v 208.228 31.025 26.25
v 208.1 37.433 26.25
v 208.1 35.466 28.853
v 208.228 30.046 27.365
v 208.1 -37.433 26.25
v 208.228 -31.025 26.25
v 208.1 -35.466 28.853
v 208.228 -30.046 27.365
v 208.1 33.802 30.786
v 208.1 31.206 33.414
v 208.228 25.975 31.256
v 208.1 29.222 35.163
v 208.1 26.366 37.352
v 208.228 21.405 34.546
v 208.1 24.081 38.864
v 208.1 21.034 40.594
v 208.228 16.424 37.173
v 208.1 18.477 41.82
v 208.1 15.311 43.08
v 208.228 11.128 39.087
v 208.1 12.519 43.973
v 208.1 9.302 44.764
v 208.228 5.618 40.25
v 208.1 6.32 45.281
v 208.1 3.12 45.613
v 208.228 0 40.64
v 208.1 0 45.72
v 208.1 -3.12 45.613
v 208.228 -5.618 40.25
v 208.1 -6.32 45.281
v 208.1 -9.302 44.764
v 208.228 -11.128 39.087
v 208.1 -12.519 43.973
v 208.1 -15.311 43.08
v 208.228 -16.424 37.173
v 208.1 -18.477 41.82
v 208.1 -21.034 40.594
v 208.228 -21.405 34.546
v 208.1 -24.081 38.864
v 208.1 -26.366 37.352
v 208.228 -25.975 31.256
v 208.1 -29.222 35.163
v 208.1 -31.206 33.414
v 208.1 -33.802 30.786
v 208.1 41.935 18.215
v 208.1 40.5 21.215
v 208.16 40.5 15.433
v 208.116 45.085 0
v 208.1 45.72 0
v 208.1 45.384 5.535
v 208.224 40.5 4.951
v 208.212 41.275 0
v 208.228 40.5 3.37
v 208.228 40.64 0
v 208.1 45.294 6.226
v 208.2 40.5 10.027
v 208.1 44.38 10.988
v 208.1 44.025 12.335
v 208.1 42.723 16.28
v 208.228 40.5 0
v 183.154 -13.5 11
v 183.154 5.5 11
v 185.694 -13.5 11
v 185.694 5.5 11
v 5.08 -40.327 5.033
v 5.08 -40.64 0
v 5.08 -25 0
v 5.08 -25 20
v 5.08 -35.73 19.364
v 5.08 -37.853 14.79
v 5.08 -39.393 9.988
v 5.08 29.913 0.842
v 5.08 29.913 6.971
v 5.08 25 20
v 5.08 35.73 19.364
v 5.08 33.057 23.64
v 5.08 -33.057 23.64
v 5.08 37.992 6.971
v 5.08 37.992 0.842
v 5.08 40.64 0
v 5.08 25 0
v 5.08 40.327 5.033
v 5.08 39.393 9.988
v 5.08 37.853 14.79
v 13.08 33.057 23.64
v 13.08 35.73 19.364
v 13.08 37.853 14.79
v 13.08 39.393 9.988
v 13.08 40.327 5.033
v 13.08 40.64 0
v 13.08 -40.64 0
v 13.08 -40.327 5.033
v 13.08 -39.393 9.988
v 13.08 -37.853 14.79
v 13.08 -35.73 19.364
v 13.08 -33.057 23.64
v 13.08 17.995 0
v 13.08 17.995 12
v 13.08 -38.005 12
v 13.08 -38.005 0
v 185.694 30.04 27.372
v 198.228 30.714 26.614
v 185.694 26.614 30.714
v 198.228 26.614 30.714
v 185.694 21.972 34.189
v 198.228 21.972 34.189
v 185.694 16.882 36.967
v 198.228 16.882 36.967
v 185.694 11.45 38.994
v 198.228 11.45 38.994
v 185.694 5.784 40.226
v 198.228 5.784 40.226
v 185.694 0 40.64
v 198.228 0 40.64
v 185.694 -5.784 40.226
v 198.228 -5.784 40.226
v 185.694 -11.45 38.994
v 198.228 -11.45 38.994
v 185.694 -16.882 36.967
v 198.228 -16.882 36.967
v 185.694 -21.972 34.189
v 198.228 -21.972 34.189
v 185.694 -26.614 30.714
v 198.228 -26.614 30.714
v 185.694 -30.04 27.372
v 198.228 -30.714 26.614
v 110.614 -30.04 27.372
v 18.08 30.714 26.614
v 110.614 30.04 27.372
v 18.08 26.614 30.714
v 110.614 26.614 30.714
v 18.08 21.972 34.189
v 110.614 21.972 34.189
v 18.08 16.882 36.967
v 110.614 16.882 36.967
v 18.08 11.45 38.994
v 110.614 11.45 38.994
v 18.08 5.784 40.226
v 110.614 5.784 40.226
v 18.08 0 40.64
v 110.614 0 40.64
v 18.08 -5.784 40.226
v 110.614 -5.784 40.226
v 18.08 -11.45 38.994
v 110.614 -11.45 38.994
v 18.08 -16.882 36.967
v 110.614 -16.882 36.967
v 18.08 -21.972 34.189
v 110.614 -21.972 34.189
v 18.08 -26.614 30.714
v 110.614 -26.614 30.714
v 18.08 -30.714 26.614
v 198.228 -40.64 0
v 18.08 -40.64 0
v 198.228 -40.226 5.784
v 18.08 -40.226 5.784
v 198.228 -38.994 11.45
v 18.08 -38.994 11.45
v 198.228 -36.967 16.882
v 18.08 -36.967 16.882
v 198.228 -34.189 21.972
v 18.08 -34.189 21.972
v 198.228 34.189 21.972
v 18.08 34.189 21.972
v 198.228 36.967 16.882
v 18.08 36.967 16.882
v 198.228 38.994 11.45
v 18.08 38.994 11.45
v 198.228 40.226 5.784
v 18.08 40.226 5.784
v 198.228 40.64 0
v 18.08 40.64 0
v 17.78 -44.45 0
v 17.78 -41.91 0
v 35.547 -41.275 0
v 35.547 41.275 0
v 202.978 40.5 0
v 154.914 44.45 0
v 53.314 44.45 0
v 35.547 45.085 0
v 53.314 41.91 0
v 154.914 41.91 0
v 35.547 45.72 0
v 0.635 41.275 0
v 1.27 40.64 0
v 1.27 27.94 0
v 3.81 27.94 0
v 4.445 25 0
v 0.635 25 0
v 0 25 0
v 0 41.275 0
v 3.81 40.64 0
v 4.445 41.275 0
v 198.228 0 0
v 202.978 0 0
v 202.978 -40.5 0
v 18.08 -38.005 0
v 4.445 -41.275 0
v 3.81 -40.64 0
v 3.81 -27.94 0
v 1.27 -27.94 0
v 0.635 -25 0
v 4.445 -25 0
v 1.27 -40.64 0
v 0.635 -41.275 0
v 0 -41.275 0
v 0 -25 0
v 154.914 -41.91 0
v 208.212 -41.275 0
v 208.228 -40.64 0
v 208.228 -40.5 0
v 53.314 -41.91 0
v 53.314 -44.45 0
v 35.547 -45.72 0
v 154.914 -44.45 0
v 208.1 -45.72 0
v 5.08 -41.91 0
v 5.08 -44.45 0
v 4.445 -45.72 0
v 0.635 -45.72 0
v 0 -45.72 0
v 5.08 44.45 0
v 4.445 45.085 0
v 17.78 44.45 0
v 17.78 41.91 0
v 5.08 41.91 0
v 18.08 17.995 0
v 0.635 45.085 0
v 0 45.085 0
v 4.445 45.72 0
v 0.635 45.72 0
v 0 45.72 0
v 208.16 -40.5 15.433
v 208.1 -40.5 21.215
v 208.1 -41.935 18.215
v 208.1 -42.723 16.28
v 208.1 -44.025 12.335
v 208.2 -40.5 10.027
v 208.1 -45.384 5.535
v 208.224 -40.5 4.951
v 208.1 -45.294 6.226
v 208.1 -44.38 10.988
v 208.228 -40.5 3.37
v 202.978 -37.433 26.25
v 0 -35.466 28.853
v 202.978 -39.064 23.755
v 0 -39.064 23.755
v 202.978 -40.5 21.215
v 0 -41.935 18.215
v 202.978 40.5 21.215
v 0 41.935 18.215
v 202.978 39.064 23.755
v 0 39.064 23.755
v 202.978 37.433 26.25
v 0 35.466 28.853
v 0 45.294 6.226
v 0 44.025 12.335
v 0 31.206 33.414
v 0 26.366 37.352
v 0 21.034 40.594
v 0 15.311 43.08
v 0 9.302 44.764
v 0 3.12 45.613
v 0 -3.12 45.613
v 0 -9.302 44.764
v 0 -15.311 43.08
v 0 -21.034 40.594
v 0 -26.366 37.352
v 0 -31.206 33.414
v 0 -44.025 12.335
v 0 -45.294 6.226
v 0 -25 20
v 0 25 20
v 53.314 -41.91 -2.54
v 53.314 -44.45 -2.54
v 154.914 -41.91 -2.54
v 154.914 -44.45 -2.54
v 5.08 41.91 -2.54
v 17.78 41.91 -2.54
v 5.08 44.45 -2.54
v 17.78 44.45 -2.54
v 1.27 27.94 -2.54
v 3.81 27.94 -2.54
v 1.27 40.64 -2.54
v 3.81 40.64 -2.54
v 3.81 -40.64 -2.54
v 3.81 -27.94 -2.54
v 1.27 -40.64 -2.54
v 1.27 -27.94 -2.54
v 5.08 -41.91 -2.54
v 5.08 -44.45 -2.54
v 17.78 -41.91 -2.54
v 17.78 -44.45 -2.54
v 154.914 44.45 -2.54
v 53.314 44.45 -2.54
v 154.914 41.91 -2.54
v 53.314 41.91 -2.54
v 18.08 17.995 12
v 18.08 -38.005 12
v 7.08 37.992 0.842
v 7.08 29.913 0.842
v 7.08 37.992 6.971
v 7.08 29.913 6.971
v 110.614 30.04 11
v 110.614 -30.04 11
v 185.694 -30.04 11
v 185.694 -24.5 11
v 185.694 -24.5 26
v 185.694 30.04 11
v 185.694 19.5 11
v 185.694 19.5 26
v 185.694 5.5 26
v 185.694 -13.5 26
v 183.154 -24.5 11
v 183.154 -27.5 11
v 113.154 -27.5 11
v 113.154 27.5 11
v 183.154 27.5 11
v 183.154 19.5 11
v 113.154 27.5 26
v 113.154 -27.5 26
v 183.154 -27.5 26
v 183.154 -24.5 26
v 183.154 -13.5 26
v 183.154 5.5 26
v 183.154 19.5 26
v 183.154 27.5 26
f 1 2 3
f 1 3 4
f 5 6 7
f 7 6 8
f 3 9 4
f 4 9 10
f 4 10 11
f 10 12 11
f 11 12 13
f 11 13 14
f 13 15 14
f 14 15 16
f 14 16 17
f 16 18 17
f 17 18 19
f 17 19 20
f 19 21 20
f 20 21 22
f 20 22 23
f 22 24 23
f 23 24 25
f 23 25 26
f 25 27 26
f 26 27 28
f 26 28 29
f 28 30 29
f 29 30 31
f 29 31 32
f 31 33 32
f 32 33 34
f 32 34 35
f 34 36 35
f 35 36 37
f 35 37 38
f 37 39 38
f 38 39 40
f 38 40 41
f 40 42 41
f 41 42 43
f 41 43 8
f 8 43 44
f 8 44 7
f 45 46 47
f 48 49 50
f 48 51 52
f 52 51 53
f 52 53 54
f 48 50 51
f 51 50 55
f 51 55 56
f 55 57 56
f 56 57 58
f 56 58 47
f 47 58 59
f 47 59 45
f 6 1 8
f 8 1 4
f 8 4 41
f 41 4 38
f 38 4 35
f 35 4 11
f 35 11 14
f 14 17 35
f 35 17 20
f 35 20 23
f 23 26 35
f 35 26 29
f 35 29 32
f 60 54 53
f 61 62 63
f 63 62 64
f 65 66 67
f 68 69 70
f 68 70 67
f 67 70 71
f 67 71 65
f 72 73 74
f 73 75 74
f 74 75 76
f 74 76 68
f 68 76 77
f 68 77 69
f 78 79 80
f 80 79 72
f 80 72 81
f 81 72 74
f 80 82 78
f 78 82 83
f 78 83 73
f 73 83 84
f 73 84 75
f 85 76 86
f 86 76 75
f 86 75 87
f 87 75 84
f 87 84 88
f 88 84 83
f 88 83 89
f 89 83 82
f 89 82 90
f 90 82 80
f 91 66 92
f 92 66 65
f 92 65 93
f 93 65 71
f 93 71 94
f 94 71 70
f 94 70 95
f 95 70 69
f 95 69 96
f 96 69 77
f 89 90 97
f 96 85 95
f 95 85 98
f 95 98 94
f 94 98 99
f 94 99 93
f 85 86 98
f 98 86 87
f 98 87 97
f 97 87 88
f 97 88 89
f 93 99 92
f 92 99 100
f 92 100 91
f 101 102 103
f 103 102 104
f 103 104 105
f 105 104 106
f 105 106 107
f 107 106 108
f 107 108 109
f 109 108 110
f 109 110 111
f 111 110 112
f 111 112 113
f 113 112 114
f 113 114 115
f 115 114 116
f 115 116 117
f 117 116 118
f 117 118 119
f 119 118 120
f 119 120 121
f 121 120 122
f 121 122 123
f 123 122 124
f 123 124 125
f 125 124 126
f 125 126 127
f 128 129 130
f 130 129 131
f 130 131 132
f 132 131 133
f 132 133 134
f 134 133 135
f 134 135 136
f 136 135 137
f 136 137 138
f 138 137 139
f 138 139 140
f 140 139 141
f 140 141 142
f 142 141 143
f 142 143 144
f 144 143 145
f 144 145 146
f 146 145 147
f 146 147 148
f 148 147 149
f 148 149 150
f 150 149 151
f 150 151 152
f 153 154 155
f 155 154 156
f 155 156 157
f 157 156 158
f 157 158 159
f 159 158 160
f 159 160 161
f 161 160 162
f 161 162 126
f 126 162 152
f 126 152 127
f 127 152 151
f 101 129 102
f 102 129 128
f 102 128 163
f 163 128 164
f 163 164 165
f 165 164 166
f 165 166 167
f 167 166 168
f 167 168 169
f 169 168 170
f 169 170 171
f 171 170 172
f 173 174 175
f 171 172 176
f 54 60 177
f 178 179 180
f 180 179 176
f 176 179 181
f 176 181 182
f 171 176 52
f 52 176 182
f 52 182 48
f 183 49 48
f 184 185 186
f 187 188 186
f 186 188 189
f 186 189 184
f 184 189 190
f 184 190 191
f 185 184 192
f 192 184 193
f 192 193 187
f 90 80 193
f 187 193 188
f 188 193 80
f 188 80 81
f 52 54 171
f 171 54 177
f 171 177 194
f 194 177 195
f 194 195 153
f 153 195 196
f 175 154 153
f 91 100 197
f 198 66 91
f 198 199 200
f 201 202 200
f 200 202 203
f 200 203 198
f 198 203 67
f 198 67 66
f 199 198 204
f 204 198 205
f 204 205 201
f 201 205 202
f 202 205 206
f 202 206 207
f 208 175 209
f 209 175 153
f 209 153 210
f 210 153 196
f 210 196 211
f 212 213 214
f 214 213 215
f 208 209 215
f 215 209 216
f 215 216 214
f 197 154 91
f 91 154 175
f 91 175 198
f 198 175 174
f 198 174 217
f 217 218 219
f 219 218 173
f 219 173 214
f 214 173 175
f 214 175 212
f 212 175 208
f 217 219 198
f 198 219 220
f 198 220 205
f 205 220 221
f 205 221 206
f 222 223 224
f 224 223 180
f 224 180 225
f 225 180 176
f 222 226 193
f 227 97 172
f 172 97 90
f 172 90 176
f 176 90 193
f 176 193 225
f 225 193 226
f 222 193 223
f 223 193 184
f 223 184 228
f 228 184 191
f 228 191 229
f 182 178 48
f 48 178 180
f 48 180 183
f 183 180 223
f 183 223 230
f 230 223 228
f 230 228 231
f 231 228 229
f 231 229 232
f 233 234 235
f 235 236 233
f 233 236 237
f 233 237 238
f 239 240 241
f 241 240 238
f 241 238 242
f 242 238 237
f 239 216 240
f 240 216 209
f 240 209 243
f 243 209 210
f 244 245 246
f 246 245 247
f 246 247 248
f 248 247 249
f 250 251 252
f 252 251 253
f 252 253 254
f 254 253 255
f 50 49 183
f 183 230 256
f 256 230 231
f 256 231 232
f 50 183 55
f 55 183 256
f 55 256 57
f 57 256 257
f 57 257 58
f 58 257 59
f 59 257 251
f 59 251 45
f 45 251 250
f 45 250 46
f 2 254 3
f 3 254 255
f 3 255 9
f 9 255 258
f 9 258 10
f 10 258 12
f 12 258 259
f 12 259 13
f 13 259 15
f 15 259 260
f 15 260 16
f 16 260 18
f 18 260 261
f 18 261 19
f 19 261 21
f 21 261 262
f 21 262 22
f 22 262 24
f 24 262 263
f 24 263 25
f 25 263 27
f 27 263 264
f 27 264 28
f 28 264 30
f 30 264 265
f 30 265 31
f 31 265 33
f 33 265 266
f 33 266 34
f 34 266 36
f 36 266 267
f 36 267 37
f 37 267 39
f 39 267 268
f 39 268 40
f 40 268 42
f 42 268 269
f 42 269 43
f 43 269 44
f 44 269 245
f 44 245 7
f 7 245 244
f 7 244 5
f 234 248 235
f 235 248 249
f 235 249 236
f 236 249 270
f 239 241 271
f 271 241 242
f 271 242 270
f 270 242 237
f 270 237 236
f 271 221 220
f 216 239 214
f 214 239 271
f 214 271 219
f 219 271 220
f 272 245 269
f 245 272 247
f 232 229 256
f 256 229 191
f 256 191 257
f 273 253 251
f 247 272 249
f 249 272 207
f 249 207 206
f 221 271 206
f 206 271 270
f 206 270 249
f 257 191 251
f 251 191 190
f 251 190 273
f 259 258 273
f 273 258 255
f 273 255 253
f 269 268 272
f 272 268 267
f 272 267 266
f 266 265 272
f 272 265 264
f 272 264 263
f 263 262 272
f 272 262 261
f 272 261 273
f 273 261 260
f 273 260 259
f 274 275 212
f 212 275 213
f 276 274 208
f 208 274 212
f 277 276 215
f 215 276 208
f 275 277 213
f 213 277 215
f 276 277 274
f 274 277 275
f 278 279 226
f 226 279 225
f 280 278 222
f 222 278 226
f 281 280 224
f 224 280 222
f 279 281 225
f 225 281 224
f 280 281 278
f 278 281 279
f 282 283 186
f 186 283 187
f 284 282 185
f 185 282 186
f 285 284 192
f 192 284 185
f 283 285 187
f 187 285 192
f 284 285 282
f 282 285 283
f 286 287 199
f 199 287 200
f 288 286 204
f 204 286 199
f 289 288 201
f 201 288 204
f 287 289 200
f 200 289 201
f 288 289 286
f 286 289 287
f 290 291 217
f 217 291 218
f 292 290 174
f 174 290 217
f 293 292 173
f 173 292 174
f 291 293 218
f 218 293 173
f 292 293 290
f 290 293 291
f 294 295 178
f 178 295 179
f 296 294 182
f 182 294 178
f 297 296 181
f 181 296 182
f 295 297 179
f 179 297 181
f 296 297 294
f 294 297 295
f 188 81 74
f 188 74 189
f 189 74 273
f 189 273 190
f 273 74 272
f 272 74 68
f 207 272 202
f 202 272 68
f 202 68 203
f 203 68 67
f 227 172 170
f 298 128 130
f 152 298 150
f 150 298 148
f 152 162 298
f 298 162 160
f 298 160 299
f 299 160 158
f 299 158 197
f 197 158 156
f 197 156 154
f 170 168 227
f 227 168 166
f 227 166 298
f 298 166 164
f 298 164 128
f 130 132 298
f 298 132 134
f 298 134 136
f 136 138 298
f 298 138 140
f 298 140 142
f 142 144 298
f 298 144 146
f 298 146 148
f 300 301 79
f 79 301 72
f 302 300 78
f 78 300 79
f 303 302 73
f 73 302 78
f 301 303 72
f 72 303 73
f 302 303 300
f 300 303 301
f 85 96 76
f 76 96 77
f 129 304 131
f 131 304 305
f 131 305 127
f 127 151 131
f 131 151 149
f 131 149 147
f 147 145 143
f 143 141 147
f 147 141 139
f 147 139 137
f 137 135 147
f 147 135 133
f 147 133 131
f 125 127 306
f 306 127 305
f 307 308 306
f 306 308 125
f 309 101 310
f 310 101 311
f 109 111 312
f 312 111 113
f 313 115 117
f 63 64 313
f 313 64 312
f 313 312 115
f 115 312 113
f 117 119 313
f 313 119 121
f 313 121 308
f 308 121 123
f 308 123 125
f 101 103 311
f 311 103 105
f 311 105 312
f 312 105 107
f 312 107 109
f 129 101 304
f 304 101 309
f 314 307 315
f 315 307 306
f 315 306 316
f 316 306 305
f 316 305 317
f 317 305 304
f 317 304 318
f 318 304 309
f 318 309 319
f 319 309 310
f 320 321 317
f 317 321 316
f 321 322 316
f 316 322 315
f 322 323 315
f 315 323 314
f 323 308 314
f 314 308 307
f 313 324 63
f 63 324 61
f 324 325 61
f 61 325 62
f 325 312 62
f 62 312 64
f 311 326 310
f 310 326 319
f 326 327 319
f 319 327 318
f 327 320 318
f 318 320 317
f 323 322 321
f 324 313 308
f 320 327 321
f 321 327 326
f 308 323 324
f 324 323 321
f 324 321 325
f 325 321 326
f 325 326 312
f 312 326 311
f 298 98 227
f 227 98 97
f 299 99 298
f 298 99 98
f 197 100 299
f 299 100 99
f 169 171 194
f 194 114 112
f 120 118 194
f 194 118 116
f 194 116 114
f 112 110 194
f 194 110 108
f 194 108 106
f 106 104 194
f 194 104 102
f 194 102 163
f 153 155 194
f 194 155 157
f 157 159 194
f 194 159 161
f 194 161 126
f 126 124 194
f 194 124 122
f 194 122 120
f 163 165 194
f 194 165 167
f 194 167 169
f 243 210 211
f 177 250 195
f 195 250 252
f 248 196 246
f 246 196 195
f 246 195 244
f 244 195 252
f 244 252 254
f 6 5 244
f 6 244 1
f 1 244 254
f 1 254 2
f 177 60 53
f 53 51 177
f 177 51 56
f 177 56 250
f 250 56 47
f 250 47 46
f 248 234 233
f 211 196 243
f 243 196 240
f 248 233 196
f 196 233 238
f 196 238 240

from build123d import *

# Parameters (mm, degrees)
REVOLVE2_ANGLE           = 180
SKETCH5_W                = 2.54
SKETCH5_H                = 12.7
SKETCH5_W_2              = 101.6
SKETCH5_H_2              = 2.54
SKETCH5_W_3              = 12.7
BOSS_EXTRUDE1_DEPTH      = 2.54
SKETCH7_W                = 20
SKETCH7_H                = 50
CUT_EXTRUDE1_DEPTH       = 7
BOSS_EXTRUDE3_REACH      = 220.035
SKETCH8_W                = 5
SKETCH8_H                = 91.44
SKETCH9_W                = 6.129296028
SKETCH9_H                = 8.078685473
BOSS_EXTRUDE4_DEPTH      = 2
BOSS_EXTRUDE7_START      = 8
BOSS_EXTRUDE7_DEPTH      = 8
BOSS_EXTRUDE8_REACH      = 220.035
BOSS_EXTRUDE8_END_RADIUS = 40.64
SKETCH13_W               = 75.08
SKETCH13_H               = 60.08
SKETCH13_W_2             = 70
SKETCH13_H_2             = 55
SKETCH14_W               = 75.08
SKETCH14_H               = 60.08
CUT_EXTRUDE3_DEPTH       = 11
BOSS_EXTRUDE9_REACH      = 217.997
SKETCH15_W               = 70
SKETCH15_H               = 55
CUT_EXTRUDE5_DEPTH       = 15
CUT_EXTRUDE6_REACH       = 202.84
SKETCH18_W               = 12
SKETCH18_H               = 56
BOSS_EXTRUDE10_REACH     = 220.035
SKETCH23_W               = 10
SKETCH23_H               = 81.28
SKETCH24_W               = 26.25
SKETCH24_H               = 81
CUT_EXTRUDE7_DEPTH       = 5.25


with BuildPart() as part:
    # Sketch2 → Revolve2 (revolve)
    with BuildSketch(Plane.XY):
        Polygon((0, 0), (0, 40.64), (0, 45.72), (25.4, 45.72), (195.4, 45.72), (208.1, 45.72), (208.22771659, 40.64), (195.52771659, 40.64), (25.4, 40.64), (5.08, 40.64), (5.08, 0), align=None)
    revolve(axis=Axis((0, 0, 0), (1, 0, 0)), revolution_arc=REVOLVE2_ANGLE)

    # Sketch5 → Boss-Extrude1 (add)
    with BuildSketch(Plane(origin=(0, 0, 0), x_dir=(-1, 0, 0), z_dir=(0, 0, -1))):
        with Locations((-2.54, 34.29)):
            Rectangle(SKETCH5_W, SKETCH5_H)
        with Locations((-104.113858295, -43.18)):
            Rectangle(SKETCH5_W_2, SKETCH5_H_2)
        with Locations((-11.43, 43.18)):
            Rectangle(SKETCH5_W_3, SKETCH5_H_2)
        with Locations((-104.113858295, 43.18)):
            Rectangle(SKETCH5_W_2, SKETCH5_H_2)
        with Locations((-11.43, -43.18)):
            Rectangle(SKETCH5_W_3, SKETCH5_H_2)
        with Locations((-2.54, -34.29)):
            Rectangle(SKETCH5_W, SKETCH5_H)
    extrude(amount=BOSS_EXTRUDE1_DEPTH)

    # Sketch7 → Cut-Extrude1 (cut)
    with BuildSketch(Plane.ZY):
        with Locations((10, 0)):
            Rectangle(SKETCH7_W, SKETCH7_H)
    extrude(amount=-CUT_EXTRUDE1_DEPTH, mode=Mode.SUBTRACT)

    # Sketch8 → Boss-Extrude3 (add, up to next)
    with BuildSketch(Plane(origin=(0, 0, 0), x_dir=(-1, 0, 0), z_dir=(0, 0, -1)), mode=Mode.PRIVATE) as boss_extrude3_sk1:
        with Locations((-15.58, 0)):
            Rectangle(SKETCH8_W, SKETCH8_H)
    boss_extrude3_tool1 = extrude(boss_extrude3_sk1.sketch, amount=-BOSS_EXTRUDE3_REACH, mode=Mode.PRIVATE) - part.part
    add(boss_extrude3_tool1.solids().sort_by_distance((15.58, 0, 0))[0])

    # Sketch9 → Boss-Extrude4 (add)
    with BuildSketch(Plane(origin=(5.08, 0, 0), x_dir=(0, 0, -1), z_dir=(1, 0, 0))):
        with Locations((-3.906446672, 33.952493663)):
            Rectangle(SKETCH9_W, SKETCH9_H)
    extrude(amount=BOSS_EXTRUDE4_DEPTH)

    # Sketch12 → Boss-Extrude7 (add)
    with BuildSketch(Plane.ZY.offset(-13.08).offset(BOSS_EXTRUDE7_START)):
        with BuildLine():
            Line((23.64, 33.056920607), (23.64, -33.056920607))
            ThreePointArc((23.64, -33.056920607), (40.64, 0), (23.64, 33.056920607))
        make_face()
    extrude(amount=-BOSS_EXTRUDE7_DEPTH)

    # Boss-Extrude8: up to this cylinder (the profile starts inside it)
    boss_extrude8_end = Plane(origin=(148.153858, 0, 0), z_dir=(-1, 0, 0)) * Cylinder(BOSS_EXTRUDE8_END_RADIUS, 522.35, mode=Mode.PRIVATE)
    # Sketch13 → Boss-Extrude8 (add, up to the surface)
    with BuildSketch(Plane(origin=(0, 0, 0), x_dir=(-1, 0, 0), z_dir=(0, 0, -1)), mode=Mode.PRIVATE) as boss_extrude8_sk1:
        with Locations((-148.153858295, 0)):
            Rectangle(SKETCH13_W, SKETCH13_H)
        with Locations((-148.153858295, 0)):
            Rectangle(SKETCH13_W_2, SKETCH13_H_2, mode=Mode.SUBTRACT)
    boss_extrude8_tool1 = extrude(boss_extrude8_sk1.sketch, amount=-BOSS_EXTRUDE8_REACH, mode=Mode.PRIVATE) & boss_extrude8_end
    add(boss_extrude8_tool1.solids().sort_by_distance((148.153858, 29.078407, 0))[0])

    # Sketch14 → Cut-Extrude3 (cut)
    with BuildSketch(Plane(origin=(0, 0, 0), x_dir=(-1, 0, 0), z_dir=(0, 0, -1))):
        with Locations((-148.153858295, 0)):
            Rectangle(SKETCH14_W, SKETCH14_H)
    extrude(amount=-CUT_EXTRUDE3_DEPTH, mode=Mode.SUBTRACT)

    # Sketch15 → Boss-Extrude9 (add, up to next)
    with BuildSketch(Plane(origin=(0, 0, 11), x_dir=(-1, 0, 0), z_dir=(0, 0, -1)), mode=Mode.PRIVATE) as boss_extrude9_sk1:
        with Locations((-148.153858295, 0)):
            Rectangle(SKETCH15_W, SKETCH15_H)
    boss_extrude9_tool1 = extrude(boss_extrude9_sk1.sketch, amount=-BOSS_EXTRUDE9_REACH, mode=Mode.PRIVATE) - part.part
    add(boss_extrude9_tool1.solids().sort_by_distance((148.153858, 0, 11))[0])

    # Sketch17 → Cut-Extrude5 (cut)
    with BuildSketch(Plane(origin=(0, 0, 11), x_dir=(-1, 0, 0), z_dir=(0, 0, -1))):
        Polygon((-113.153858295, 27.5), (-183.153858295, 27.5), (-183.153858295, 19.5), (-185.693858295, 19.5), (-185.693858295, 5.5), (-183.153858295, 5.5), (-183.153858295, -13.5), (-185.693858295, -13.5), (-185.693858295, -24.5), (-183.153858295, -24.5), (-183.153858295, -27.5), (-113.153858295, -27.5), align=None)
    extrude(amount=-CUT_EXTRUDE5_DEPTH, mode=Mode.SUBTRACT)

    # Sketch18 → Cut-Extrude6 (cut, up to next)
    with BuildSketch(Plane(origin=(18.08, 0, 0), x_dir=(0, 0, -1), z_dir=(1, 0, 0)), mode=Mode.PRIVATE) as cut_extrude6_sk1:
        with Locations((-6, -10.004795356)):
            Rectangle(SKETCH18_W, SKETCH18_H)
    cut_extrude6_tool1 = extrude(cut_extrude6_sk1.sketch, amount=-CUT_EXTRUDE6_REACH, mode=Mode.PRIVATE) & part.part
    add(cut_extrude6_tool1.solids().sort_by_distance((18.08, -10.004795, 6))[0], mode=Mode.SUBTRACT)

    # Sketch23 → Boss-Extrude10 (add, up to next)
    with BuildSketch(Plane(origin=(0, 0, 0), x_dir=(-1, 0, 0), z_dir=(0, 0, -1)), mode=Mode.PRIVATE) as boss_extrude10_sk1:
        with Locations((-203.22771659, 0)):
            Rectangle(SKETCH23_W, SKETCH23_H)
    boss_extrude10_tool1 = extrude(boss_extrude10_sk1.sketch, amount=-BOSS_EXTRUDE10_REACH, mode=Mode.PRIVATE) - part.part
    add(boss_extrude10_tool1.solids().sort_by_distance((203.227717, 0, 0))[0])

    # Sketch24 → Cut-Extrude7 (cut)
    with BuildSketch(Plane(origin=(208.22771659, 0, 0), x_dir=(0, 0, -1), z_dir=(1, 0, 0))):
        with Locations((-13.125, 0)):
            Rectangle(SKETCH24_W, SKETCH24_H)
    extrude(amount=-CUT_EXTRUDE7_DEPTH, mode=Mode.SUBTRACT)


solid = part.part
